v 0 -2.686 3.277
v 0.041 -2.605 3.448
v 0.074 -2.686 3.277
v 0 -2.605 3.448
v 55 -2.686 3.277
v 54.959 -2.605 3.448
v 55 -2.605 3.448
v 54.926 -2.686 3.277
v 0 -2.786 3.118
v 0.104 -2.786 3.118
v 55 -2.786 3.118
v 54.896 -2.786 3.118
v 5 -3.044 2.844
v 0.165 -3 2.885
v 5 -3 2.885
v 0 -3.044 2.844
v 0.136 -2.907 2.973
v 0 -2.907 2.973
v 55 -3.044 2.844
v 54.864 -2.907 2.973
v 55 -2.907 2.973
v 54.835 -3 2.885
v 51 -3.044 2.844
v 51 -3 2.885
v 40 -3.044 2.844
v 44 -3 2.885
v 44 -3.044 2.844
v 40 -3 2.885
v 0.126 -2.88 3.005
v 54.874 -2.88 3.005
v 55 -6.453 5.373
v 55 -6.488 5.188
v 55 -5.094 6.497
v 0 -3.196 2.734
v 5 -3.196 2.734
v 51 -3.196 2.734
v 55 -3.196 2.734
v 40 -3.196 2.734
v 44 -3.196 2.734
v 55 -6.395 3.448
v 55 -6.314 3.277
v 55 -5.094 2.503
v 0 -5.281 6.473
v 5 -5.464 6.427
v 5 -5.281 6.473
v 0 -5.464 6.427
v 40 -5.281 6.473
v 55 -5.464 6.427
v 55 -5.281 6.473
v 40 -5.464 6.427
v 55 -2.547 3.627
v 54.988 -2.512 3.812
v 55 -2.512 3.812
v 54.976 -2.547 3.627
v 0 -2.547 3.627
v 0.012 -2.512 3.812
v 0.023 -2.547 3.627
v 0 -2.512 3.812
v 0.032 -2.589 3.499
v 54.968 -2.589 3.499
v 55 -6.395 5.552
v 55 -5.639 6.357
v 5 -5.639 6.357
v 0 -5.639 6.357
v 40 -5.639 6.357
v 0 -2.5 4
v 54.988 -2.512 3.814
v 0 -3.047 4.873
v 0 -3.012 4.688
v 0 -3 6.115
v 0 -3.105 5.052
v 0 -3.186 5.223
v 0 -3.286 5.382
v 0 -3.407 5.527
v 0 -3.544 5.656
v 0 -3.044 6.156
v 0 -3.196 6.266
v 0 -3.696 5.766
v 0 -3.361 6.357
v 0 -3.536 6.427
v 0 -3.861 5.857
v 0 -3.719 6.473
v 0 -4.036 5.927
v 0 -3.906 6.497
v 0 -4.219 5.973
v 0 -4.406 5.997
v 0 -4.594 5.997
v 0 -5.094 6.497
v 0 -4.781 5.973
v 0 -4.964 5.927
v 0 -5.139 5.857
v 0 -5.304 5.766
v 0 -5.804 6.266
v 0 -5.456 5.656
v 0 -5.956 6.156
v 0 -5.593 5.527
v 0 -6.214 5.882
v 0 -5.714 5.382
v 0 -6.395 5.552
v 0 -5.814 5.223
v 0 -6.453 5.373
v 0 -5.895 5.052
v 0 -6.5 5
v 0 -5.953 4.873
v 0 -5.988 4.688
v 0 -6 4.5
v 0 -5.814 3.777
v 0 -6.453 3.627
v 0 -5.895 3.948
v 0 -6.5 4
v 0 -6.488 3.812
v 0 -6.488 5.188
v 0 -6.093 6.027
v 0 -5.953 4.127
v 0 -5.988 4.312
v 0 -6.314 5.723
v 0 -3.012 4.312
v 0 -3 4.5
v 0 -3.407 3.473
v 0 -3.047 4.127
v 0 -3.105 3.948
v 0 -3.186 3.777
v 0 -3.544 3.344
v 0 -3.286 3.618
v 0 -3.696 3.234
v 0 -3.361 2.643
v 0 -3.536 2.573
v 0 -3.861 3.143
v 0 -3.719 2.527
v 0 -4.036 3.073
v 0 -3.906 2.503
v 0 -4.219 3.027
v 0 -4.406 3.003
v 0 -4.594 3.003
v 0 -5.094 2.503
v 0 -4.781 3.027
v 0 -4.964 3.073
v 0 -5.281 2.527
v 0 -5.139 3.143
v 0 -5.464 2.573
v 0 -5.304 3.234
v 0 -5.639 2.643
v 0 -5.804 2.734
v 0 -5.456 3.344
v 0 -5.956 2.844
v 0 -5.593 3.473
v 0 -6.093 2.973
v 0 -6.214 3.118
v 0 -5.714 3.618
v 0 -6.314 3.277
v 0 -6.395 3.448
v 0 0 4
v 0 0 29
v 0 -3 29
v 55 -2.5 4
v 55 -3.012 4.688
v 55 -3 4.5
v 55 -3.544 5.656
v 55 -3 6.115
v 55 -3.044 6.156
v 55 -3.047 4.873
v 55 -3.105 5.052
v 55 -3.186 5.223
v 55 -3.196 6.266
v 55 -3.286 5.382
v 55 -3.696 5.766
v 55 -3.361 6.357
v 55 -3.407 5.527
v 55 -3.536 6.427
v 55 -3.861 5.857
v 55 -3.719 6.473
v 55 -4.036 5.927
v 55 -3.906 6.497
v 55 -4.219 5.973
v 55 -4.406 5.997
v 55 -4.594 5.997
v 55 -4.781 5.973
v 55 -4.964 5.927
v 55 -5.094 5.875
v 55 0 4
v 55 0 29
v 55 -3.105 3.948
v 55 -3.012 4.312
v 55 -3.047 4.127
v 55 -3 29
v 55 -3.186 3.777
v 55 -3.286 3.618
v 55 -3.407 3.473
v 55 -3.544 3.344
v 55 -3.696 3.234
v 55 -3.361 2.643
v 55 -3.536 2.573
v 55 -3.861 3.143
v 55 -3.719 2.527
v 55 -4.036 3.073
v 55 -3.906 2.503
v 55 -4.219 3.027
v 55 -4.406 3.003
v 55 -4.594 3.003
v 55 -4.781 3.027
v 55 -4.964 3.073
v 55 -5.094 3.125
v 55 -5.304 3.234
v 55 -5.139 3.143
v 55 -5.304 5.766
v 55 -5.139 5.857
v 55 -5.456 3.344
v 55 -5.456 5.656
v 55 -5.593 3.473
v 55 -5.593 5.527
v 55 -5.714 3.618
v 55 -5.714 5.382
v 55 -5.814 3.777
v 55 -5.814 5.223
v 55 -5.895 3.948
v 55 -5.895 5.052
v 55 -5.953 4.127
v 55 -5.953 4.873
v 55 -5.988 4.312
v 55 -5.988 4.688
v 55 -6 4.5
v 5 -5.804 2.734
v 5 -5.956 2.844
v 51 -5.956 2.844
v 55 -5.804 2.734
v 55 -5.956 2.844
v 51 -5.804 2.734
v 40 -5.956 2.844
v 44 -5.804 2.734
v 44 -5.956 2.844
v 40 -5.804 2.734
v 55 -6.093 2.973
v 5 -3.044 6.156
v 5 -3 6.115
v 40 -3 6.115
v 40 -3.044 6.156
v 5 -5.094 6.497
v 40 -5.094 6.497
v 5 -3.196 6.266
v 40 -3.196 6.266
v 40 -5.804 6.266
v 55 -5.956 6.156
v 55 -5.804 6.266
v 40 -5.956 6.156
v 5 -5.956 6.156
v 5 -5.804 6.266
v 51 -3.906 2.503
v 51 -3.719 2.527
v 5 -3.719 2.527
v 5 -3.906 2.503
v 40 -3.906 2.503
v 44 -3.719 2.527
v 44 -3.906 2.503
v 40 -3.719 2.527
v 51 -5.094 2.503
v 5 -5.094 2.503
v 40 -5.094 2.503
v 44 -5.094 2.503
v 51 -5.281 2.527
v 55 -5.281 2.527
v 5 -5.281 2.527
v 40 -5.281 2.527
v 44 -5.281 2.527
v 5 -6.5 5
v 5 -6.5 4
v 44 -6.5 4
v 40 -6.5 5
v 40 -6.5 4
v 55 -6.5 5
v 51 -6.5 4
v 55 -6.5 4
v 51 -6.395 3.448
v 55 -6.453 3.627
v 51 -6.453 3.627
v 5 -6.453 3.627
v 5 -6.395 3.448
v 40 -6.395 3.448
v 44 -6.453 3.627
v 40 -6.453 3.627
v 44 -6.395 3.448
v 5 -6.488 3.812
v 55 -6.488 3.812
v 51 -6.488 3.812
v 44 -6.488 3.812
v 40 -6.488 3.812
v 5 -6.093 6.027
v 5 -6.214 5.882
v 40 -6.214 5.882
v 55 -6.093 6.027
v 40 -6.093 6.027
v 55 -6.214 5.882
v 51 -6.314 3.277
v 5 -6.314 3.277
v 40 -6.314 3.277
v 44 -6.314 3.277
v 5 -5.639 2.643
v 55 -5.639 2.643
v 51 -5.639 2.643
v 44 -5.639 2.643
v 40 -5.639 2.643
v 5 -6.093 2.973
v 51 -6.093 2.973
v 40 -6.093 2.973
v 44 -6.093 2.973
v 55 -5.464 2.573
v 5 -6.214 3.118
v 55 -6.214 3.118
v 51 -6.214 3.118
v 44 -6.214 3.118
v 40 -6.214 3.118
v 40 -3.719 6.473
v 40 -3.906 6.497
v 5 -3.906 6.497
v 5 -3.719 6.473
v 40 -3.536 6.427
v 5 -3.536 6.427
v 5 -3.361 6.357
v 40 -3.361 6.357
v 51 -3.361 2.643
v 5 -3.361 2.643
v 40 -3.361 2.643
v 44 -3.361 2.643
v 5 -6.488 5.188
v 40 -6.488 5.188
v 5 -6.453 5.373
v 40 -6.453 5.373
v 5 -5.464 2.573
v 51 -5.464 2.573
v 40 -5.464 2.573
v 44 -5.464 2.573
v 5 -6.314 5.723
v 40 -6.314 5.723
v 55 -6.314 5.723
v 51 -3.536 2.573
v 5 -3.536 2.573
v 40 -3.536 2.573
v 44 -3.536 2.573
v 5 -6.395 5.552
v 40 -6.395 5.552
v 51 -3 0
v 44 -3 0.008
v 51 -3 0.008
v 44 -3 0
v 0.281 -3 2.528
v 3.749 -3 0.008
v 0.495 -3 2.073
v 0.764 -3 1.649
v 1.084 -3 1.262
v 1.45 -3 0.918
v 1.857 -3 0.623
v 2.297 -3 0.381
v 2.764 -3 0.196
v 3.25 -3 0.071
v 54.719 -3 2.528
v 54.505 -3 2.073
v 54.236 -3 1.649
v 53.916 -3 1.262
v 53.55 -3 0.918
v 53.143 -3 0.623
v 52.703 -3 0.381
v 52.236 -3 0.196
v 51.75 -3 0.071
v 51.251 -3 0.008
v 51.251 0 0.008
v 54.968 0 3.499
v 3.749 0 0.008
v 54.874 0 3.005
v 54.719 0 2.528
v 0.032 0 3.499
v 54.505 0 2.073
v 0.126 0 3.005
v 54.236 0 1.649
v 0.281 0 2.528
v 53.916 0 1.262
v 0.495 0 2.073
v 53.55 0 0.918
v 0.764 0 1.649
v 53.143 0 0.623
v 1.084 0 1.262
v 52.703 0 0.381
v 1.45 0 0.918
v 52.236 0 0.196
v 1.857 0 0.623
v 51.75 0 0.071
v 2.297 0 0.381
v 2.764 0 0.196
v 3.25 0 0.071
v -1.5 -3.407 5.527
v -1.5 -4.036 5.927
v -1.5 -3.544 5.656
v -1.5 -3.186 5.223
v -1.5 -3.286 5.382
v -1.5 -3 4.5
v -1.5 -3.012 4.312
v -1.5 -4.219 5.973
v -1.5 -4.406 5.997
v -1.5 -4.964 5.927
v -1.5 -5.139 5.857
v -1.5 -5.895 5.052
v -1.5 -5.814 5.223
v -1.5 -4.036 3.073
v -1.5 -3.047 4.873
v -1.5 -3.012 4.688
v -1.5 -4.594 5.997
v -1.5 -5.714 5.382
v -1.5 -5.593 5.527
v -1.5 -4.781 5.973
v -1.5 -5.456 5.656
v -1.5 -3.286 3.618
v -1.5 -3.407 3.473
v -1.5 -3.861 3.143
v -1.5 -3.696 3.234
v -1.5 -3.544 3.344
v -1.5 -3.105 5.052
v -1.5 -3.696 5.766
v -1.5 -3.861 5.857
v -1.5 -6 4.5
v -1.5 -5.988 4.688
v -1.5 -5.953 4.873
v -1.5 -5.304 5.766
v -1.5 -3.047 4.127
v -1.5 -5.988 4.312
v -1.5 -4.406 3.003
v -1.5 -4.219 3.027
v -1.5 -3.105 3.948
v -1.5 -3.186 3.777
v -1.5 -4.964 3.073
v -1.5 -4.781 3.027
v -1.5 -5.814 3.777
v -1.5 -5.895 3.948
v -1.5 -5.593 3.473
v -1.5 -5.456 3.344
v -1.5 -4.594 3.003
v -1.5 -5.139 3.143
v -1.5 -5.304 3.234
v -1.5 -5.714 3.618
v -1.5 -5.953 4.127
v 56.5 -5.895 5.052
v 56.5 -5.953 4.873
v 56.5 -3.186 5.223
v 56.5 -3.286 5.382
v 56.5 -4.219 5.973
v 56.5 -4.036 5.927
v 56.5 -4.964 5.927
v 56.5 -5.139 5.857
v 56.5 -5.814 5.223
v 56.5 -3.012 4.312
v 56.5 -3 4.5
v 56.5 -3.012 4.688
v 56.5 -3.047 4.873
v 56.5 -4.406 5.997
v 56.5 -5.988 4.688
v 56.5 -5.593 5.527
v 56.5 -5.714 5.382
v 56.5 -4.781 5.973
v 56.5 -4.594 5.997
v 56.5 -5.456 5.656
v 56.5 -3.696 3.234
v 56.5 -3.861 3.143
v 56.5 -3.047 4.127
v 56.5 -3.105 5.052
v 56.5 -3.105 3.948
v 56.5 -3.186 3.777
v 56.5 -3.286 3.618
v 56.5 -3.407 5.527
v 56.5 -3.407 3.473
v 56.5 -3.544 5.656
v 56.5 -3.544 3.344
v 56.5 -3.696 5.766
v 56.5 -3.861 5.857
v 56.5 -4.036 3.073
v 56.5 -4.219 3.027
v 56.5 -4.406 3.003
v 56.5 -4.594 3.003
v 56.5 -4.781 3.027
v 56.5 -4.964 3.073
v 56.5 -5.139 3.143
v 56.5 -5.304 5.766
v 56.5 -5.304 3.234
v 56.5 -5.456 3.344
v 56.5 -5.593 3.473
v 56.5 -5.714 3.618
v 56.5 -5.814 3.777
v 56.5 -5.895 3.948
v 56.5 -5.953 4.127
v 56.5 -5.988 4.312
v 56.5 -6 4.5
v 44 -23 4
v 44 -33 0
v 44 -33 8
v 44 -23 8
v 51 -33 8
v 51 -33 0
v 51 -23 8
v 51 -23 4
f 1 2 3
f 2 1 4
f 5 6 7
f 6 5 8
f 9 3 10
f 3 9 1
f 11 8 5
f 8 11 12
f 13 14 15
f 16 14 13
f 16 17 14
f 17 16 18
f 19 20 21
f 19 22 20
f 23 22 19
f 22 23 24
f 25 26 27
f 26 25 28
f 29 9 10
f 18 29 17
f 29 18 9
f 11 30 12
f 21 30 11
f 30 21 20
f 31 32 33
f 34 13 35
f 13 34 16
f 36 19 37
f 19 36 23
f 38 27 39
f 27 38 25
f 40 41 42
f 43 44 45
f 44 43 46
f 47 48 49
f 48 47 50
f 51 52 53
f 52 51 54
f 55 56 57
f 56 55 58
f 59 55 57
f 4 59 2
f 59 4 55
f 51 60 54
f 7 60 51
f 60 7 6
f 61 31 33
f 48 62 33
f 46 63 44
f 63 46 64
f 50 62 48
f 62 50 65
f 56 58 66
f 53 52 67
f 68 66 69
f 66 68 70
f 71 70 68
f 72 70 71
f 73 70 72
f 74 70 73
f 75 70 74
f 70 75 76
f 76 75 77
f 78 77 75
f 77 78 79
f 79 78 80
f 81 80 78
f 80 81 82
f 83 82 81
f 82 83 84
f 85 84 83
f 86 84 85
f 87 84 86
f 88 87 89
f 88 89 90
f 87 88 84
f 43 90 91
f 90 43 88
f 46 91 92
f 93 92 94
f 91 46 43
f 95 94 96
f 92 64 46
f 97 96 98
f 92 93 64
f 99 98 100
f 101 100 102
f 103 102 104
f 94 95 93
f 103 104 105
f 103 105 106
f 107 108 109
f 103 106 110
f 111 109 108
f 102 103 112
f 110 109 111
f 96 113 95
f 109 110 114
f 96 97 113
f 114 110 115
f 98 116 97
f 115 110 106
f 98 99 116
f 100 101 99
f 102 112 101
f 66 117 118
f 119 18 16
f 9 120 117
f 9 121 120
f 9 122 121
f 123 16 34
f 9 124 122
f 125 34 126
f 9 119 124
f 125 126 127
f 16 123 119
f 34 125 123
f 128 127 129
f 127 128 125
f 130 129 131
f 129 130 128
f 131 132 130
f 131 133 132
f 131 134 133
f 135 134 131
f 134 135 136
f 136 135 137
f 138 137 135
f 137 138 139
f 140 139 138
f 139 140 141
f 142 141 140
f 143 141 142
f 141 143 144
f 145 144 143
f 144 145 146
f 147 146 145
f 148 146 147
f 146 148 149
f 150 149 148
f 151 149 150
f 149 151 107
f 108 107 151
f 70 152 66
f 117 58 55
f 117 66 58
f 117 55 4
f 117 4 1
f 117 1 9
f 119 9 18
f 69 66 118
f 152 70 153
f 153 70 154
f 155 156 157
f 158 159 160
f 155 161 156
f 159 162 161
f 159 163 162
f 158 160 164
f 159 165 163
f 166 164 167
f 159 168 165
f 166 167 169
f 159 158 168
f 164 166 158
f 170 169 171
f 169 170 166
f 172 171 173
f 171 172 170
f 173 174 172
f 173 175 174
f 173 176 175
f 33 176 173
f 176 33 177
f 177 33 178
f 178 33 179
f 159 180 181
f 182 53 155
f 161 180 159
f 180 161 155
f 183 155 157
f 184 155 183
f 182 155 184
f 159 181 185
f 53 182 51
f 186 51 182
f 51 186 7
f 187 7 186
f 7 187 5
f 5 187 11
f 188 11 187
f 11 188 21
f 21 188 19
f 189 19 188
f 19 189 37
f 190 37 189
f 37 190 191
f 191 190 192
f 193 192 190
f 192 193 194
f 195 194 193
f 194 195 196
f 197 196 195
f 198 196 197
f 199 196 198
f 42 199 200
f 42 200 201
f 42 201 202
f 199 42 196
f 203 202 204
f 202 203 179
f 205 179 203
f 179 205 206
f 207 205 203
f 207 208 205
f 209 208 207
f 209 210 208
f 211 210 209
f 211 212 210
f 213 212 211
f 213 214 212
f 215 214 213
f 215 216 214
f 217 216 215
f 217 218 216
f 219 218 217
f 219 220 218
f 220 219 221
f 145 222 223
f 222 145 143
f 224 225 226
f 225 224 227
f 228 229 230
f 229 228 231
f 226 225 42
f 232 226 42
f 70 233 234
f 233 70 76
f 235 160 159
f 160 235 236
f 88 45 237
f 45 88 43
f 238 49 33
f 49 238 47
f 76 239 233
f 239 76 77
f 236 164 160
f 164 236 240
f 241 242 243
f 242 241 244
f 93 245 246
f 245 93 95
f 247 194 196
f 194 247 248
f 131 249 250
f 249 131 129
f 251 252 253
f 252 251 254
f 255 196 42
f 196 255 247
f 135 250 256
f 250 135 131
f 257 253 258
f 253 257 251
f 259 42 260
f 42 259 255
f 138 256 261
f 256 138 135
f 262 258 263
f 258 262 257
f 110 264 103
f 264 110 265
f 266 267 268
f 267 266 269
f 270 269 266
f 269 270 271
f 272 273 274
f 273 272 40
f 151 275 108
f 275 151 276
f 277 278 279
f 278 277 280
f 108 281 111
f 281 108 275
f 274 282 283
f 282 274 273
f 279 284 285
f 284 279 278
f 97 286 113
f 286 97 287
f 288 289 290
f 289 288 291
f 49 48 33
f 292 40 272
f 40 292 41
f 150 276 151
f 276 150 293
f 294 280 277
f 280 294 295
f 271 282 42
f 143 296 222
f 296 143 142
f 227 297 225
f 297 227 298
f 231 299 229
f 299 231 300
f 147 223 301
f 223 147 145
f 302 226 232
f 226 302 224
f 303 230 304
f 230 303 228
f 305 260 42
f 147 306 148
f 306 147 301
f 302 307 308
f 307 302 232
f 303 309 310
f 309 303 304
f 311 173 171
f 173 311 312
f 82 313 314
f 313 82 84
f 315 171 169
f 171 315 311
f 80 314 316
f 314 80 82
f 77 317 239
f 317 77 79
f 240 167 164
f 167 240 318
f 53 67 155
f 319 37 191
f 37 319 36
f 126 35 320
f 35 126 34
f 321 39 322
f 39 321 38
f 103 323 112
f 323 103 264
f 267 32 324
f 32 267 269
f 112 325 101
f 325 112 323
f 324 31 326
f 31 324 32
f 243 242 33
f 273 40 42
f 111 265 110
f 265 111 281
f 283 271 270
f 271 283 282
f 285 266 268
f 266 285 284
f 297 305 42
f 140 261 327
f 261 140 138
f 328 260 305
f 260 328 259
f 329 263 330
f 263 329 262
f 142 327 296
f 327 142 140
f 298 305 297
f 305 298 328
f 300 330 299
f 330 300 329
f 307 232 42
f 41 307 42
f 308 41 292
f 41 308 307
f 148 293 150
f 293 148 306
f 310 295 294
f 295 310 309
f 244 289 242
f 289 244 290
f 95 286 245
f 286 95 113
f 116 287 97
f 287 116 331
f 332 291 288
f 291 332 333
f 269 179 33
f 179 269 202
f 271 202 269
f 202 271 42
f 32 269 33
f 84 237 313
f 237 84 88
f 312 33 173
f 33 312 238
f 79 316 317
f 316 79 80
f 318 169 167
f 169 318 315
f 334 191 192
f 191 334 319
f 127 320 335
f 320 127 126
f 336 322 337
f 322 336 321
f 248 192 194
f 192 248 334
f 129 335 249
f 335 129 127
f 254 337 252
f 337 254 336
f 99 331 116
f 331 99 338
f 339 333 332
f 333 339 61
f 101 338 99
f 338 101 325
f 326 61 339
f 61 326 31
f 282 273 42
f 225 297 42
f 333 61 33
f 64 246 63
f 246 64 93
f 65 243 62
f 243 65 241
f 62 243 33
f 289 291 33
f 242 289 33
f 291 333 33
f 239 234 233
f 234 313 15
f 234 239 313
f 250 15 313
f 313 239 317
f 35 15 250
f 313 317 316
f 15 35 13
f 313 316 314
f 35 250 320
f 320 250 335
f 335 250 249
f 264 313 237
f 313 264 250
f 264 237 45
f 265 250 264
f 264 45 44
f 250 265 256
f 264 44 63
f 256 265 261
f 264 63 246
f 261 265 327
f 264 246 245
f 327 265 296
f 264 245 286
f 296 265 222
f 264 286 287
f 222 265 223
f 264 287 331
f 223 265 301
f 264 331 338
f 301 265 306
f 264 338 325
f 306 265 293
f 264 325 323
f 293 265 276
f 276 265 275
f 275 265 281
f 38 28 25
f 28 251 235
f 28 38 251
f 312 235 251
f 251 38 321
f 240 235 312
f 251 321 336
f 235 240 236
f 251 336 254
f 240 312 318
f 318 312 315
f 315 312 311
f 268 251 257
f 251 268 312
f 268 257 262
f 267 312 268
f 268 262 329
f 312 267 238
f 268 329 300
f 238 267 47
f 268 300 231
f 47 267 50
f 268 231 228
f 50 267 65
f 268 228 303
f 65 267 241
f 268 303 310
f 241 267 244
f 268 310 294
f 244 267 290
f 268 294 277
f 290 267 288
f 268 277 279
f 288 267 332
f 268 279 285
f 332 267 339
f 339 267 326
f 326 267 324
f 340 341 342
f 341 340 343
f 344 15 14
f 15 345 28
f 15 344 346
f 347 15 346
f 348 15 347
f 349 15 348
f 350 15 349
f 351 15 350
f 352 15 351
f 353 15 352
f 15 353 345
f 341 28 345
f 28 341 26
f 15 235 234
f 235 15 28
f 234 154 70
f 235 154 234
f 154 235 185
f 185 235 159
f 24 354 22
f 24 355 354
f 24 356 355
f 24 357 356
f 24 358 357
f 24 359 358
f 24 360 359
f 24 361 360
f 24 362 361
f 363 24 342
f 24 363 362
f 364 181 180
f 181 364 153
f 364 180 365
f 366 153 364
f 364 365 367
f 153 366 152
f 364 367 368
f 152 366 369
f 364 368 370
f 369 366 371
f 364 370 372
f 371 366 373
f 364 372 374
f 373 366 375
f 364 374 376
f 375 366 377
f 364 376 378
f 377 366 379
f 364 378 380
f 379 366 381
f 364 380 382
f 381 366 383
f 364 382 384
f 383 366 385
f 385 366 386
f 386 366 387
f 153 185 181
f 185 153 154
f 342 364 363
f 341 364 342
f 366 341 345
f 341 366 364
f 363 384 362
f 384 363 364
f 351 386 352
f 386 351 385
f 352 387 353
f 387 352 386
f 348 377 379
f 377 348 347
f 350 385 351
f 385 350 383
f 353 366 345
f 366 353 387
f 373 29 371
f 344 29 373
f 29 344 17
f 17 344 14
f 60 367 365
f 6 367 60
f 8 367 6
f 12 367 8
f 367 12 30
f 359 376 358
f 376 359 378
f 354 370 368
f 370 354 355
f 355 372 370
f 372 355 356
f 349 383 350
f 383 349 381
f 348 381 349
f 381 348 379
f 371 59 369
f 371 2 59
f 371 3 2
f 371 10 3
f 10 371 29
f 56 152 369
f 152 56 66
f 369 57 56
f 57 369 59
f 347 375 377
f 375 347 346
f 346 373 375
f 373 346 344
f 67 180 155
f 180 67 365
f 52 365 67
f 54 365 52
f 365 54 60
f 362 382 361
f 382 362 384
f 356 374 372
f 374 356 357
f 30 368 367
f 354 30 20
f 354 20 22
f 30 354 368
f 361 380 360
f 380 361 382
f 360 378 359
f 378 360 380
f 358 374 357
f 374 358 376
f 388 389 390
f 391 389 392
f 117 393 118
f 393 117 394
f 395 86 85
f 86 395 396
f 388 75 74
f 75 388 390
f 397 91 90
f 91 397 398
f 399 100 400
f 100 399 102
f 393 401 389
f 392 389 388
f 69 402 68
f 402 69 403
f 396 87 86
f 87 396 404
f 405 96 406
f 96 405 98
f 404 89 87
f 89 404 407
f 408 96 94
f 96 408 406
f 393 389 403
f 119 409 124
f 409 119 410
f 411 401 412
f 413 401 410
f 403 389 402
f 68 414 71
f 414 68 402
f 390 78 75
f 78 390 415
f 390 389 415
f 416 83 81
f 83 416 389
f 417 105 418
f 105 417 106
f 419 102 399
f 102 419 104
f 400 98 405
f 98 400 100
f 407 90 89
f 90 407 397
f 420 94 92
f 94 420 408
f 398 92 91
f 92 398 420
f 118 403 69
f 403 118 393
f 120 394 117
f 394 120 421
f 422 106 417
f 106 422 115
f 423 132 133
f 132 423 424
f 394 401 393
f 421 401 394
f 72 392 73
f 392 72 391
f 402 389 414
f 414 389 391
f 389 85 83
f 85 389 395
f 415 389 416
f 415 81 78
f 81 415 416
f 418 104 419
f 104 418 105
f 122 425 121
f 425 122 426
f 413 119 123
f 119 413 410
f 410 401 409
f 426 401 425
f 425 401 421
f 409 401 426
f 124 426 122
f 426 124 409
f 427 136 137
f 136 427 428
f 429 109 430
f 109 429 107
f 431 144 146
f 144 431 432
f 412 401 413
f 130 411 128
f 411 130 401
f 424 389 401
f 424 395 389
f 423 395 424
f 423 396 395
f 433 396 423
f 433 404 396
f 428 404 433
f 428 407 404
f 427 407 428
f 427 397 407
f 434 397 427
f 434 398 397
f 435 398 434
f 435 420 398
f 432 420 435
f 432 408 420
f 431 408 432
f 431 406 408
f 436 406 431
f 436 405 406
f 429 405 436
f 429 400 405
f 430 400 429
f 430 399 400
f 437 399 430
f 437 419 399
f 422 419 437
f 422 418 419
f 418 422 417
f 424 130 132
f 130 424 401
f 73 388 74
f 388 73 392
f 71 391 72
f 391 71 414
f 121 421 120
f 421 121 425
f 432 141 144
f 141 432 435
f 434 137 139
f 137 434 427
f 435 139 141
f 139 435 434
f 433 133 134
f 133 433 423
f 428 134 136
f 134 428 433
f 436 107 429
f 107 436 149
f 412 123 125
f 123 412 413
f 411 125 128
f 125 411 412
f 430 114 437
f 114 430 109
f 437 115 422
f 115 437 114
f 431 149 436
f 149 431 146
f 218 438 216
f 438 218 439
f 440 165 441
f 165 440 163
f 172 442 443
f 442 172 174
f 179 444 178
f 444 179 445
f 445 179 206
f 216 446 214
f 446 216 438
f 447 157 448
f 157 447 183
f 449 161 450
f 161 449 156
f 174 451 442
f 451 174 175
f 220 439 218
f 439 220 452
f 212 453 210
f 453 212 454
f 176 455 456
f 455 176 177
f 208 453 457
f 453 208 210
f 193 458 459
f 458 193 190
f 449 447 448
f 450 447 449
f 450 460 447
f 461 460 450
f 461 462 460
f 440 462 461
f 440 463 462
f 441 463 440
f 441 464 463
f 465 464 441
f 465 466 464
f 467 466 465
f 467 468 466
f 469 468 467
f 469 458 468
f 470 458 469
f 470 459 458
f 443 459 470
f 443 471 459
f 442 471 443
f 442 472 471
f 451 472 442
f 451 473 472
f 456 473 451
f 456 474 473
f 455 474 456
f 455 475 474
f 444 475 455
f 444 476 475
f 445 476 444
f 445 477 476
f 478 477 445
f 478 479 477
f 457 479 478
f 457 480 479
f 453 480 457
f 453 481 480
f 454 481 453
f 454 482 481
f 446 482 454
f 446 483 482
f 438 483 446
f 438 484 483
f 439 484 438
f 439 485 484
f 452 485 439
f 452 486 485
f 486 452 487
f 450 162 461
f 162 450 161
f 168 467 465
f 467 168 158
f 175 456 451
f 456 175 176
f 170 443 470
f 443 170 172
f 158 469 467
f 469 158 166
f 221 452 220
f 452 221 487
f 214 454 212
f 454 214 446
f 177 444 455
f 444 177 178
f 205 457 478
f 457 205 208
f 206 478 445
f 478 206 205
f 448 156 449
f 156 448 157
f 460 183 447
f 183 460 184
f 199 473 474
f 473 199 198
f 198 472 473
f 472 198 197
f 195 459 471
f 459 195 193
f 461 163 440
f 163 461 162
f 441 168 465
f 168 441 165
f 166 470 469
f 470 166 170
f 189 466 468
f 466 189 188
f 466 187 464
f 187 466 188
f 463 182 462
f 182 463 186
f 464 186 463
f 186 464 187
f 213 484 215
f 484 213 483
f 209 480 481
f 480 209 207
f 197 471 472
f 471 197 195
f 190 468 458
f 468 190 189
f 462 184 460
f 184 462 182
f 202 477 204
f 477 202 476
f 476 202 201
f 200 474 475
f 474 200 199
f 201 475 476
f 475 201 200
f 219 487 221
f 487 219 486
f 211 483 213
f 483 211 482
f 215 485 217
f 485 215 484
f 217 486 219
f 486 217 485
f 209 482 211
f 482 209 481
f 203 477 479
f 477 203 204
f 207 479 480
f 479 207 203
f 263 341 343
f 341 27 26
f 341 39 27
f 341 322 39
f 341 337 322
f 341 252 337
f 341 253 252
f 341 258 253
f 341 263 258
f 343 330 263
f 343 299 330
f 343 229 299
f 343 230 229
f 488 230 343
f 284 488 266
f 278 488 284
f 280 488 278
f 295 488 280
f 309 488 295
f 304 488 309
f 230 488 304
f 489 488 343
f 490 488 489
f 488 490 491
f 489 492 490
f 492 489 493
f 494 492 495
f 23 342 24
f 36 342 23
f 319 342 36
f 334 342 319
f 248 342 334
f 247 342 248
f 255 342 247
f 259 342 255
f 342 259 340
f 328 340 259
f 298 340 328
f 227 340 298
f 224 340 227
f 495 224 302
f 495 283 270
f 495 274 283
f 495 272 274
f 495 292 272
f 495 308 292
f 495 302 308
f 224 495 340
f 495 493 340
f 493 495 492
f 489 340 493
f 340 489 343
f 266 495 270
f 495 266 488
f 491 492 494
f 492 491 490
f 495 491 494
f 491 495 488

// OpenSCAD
width = 55;
length = 25;
thickness = 3;

angleZOffset = 3;

connectorLength = 1.5;
connectorRadius = 1.5;
connectorTopDistance = -1;

inletXOffset = 44;
inletYOffset = -4;
inletWidth = 7;
inletLength = 4;
inletThickness = 30;
inletPresser = 10;

topRadius = 4;

$fn=50;

translate([0, 0, topRadius]) rotate([90, 0, 0]) {
    cube([width, length, thickness]);

    hull() {
        translate([topRadius, 0, 0]) cylinder(r=topRadius, thickness);
        translate([width - topRadius, 0, 0]) cylinder(r=topRadius, thickness);
    }

    difference() {
        translate([0, 0, connectorRadius + angleZOffset - 0.5]) minkowski() {
            translate([0, -1, 0]); cube([width - 1, 1, 1]);
            rotate([0, 90, 0]) cylinder(r=connectorRadius, h=1);
        }
        translate([5, -5, 0]) cube([35, 10, 10]);
    }
    translate([-connectorLength, connectorRadius + connectorTopDistance, connectorRadius + angleZOffset]) rotate([0, 90, 0]) cylinder(r=connectorRadius, connectorLength);
    translate([width, connectorRadius + connectorTopDistance, connectorRadius + angleZOffset]) rotate([0, 90, 0]) cylinder(r=connectorRadius, connectorLength);

    translate([inletXOffset, inletYOffset, angleZOffset]) cube([inletWidth, inletLength, inletThickness]);
    translate([inletXOffset, inletYOffset + inletLength, angleZOffset + inletThickness - inletPresser]) cube([inletWidth, inletLength, inletPresser]);
}
